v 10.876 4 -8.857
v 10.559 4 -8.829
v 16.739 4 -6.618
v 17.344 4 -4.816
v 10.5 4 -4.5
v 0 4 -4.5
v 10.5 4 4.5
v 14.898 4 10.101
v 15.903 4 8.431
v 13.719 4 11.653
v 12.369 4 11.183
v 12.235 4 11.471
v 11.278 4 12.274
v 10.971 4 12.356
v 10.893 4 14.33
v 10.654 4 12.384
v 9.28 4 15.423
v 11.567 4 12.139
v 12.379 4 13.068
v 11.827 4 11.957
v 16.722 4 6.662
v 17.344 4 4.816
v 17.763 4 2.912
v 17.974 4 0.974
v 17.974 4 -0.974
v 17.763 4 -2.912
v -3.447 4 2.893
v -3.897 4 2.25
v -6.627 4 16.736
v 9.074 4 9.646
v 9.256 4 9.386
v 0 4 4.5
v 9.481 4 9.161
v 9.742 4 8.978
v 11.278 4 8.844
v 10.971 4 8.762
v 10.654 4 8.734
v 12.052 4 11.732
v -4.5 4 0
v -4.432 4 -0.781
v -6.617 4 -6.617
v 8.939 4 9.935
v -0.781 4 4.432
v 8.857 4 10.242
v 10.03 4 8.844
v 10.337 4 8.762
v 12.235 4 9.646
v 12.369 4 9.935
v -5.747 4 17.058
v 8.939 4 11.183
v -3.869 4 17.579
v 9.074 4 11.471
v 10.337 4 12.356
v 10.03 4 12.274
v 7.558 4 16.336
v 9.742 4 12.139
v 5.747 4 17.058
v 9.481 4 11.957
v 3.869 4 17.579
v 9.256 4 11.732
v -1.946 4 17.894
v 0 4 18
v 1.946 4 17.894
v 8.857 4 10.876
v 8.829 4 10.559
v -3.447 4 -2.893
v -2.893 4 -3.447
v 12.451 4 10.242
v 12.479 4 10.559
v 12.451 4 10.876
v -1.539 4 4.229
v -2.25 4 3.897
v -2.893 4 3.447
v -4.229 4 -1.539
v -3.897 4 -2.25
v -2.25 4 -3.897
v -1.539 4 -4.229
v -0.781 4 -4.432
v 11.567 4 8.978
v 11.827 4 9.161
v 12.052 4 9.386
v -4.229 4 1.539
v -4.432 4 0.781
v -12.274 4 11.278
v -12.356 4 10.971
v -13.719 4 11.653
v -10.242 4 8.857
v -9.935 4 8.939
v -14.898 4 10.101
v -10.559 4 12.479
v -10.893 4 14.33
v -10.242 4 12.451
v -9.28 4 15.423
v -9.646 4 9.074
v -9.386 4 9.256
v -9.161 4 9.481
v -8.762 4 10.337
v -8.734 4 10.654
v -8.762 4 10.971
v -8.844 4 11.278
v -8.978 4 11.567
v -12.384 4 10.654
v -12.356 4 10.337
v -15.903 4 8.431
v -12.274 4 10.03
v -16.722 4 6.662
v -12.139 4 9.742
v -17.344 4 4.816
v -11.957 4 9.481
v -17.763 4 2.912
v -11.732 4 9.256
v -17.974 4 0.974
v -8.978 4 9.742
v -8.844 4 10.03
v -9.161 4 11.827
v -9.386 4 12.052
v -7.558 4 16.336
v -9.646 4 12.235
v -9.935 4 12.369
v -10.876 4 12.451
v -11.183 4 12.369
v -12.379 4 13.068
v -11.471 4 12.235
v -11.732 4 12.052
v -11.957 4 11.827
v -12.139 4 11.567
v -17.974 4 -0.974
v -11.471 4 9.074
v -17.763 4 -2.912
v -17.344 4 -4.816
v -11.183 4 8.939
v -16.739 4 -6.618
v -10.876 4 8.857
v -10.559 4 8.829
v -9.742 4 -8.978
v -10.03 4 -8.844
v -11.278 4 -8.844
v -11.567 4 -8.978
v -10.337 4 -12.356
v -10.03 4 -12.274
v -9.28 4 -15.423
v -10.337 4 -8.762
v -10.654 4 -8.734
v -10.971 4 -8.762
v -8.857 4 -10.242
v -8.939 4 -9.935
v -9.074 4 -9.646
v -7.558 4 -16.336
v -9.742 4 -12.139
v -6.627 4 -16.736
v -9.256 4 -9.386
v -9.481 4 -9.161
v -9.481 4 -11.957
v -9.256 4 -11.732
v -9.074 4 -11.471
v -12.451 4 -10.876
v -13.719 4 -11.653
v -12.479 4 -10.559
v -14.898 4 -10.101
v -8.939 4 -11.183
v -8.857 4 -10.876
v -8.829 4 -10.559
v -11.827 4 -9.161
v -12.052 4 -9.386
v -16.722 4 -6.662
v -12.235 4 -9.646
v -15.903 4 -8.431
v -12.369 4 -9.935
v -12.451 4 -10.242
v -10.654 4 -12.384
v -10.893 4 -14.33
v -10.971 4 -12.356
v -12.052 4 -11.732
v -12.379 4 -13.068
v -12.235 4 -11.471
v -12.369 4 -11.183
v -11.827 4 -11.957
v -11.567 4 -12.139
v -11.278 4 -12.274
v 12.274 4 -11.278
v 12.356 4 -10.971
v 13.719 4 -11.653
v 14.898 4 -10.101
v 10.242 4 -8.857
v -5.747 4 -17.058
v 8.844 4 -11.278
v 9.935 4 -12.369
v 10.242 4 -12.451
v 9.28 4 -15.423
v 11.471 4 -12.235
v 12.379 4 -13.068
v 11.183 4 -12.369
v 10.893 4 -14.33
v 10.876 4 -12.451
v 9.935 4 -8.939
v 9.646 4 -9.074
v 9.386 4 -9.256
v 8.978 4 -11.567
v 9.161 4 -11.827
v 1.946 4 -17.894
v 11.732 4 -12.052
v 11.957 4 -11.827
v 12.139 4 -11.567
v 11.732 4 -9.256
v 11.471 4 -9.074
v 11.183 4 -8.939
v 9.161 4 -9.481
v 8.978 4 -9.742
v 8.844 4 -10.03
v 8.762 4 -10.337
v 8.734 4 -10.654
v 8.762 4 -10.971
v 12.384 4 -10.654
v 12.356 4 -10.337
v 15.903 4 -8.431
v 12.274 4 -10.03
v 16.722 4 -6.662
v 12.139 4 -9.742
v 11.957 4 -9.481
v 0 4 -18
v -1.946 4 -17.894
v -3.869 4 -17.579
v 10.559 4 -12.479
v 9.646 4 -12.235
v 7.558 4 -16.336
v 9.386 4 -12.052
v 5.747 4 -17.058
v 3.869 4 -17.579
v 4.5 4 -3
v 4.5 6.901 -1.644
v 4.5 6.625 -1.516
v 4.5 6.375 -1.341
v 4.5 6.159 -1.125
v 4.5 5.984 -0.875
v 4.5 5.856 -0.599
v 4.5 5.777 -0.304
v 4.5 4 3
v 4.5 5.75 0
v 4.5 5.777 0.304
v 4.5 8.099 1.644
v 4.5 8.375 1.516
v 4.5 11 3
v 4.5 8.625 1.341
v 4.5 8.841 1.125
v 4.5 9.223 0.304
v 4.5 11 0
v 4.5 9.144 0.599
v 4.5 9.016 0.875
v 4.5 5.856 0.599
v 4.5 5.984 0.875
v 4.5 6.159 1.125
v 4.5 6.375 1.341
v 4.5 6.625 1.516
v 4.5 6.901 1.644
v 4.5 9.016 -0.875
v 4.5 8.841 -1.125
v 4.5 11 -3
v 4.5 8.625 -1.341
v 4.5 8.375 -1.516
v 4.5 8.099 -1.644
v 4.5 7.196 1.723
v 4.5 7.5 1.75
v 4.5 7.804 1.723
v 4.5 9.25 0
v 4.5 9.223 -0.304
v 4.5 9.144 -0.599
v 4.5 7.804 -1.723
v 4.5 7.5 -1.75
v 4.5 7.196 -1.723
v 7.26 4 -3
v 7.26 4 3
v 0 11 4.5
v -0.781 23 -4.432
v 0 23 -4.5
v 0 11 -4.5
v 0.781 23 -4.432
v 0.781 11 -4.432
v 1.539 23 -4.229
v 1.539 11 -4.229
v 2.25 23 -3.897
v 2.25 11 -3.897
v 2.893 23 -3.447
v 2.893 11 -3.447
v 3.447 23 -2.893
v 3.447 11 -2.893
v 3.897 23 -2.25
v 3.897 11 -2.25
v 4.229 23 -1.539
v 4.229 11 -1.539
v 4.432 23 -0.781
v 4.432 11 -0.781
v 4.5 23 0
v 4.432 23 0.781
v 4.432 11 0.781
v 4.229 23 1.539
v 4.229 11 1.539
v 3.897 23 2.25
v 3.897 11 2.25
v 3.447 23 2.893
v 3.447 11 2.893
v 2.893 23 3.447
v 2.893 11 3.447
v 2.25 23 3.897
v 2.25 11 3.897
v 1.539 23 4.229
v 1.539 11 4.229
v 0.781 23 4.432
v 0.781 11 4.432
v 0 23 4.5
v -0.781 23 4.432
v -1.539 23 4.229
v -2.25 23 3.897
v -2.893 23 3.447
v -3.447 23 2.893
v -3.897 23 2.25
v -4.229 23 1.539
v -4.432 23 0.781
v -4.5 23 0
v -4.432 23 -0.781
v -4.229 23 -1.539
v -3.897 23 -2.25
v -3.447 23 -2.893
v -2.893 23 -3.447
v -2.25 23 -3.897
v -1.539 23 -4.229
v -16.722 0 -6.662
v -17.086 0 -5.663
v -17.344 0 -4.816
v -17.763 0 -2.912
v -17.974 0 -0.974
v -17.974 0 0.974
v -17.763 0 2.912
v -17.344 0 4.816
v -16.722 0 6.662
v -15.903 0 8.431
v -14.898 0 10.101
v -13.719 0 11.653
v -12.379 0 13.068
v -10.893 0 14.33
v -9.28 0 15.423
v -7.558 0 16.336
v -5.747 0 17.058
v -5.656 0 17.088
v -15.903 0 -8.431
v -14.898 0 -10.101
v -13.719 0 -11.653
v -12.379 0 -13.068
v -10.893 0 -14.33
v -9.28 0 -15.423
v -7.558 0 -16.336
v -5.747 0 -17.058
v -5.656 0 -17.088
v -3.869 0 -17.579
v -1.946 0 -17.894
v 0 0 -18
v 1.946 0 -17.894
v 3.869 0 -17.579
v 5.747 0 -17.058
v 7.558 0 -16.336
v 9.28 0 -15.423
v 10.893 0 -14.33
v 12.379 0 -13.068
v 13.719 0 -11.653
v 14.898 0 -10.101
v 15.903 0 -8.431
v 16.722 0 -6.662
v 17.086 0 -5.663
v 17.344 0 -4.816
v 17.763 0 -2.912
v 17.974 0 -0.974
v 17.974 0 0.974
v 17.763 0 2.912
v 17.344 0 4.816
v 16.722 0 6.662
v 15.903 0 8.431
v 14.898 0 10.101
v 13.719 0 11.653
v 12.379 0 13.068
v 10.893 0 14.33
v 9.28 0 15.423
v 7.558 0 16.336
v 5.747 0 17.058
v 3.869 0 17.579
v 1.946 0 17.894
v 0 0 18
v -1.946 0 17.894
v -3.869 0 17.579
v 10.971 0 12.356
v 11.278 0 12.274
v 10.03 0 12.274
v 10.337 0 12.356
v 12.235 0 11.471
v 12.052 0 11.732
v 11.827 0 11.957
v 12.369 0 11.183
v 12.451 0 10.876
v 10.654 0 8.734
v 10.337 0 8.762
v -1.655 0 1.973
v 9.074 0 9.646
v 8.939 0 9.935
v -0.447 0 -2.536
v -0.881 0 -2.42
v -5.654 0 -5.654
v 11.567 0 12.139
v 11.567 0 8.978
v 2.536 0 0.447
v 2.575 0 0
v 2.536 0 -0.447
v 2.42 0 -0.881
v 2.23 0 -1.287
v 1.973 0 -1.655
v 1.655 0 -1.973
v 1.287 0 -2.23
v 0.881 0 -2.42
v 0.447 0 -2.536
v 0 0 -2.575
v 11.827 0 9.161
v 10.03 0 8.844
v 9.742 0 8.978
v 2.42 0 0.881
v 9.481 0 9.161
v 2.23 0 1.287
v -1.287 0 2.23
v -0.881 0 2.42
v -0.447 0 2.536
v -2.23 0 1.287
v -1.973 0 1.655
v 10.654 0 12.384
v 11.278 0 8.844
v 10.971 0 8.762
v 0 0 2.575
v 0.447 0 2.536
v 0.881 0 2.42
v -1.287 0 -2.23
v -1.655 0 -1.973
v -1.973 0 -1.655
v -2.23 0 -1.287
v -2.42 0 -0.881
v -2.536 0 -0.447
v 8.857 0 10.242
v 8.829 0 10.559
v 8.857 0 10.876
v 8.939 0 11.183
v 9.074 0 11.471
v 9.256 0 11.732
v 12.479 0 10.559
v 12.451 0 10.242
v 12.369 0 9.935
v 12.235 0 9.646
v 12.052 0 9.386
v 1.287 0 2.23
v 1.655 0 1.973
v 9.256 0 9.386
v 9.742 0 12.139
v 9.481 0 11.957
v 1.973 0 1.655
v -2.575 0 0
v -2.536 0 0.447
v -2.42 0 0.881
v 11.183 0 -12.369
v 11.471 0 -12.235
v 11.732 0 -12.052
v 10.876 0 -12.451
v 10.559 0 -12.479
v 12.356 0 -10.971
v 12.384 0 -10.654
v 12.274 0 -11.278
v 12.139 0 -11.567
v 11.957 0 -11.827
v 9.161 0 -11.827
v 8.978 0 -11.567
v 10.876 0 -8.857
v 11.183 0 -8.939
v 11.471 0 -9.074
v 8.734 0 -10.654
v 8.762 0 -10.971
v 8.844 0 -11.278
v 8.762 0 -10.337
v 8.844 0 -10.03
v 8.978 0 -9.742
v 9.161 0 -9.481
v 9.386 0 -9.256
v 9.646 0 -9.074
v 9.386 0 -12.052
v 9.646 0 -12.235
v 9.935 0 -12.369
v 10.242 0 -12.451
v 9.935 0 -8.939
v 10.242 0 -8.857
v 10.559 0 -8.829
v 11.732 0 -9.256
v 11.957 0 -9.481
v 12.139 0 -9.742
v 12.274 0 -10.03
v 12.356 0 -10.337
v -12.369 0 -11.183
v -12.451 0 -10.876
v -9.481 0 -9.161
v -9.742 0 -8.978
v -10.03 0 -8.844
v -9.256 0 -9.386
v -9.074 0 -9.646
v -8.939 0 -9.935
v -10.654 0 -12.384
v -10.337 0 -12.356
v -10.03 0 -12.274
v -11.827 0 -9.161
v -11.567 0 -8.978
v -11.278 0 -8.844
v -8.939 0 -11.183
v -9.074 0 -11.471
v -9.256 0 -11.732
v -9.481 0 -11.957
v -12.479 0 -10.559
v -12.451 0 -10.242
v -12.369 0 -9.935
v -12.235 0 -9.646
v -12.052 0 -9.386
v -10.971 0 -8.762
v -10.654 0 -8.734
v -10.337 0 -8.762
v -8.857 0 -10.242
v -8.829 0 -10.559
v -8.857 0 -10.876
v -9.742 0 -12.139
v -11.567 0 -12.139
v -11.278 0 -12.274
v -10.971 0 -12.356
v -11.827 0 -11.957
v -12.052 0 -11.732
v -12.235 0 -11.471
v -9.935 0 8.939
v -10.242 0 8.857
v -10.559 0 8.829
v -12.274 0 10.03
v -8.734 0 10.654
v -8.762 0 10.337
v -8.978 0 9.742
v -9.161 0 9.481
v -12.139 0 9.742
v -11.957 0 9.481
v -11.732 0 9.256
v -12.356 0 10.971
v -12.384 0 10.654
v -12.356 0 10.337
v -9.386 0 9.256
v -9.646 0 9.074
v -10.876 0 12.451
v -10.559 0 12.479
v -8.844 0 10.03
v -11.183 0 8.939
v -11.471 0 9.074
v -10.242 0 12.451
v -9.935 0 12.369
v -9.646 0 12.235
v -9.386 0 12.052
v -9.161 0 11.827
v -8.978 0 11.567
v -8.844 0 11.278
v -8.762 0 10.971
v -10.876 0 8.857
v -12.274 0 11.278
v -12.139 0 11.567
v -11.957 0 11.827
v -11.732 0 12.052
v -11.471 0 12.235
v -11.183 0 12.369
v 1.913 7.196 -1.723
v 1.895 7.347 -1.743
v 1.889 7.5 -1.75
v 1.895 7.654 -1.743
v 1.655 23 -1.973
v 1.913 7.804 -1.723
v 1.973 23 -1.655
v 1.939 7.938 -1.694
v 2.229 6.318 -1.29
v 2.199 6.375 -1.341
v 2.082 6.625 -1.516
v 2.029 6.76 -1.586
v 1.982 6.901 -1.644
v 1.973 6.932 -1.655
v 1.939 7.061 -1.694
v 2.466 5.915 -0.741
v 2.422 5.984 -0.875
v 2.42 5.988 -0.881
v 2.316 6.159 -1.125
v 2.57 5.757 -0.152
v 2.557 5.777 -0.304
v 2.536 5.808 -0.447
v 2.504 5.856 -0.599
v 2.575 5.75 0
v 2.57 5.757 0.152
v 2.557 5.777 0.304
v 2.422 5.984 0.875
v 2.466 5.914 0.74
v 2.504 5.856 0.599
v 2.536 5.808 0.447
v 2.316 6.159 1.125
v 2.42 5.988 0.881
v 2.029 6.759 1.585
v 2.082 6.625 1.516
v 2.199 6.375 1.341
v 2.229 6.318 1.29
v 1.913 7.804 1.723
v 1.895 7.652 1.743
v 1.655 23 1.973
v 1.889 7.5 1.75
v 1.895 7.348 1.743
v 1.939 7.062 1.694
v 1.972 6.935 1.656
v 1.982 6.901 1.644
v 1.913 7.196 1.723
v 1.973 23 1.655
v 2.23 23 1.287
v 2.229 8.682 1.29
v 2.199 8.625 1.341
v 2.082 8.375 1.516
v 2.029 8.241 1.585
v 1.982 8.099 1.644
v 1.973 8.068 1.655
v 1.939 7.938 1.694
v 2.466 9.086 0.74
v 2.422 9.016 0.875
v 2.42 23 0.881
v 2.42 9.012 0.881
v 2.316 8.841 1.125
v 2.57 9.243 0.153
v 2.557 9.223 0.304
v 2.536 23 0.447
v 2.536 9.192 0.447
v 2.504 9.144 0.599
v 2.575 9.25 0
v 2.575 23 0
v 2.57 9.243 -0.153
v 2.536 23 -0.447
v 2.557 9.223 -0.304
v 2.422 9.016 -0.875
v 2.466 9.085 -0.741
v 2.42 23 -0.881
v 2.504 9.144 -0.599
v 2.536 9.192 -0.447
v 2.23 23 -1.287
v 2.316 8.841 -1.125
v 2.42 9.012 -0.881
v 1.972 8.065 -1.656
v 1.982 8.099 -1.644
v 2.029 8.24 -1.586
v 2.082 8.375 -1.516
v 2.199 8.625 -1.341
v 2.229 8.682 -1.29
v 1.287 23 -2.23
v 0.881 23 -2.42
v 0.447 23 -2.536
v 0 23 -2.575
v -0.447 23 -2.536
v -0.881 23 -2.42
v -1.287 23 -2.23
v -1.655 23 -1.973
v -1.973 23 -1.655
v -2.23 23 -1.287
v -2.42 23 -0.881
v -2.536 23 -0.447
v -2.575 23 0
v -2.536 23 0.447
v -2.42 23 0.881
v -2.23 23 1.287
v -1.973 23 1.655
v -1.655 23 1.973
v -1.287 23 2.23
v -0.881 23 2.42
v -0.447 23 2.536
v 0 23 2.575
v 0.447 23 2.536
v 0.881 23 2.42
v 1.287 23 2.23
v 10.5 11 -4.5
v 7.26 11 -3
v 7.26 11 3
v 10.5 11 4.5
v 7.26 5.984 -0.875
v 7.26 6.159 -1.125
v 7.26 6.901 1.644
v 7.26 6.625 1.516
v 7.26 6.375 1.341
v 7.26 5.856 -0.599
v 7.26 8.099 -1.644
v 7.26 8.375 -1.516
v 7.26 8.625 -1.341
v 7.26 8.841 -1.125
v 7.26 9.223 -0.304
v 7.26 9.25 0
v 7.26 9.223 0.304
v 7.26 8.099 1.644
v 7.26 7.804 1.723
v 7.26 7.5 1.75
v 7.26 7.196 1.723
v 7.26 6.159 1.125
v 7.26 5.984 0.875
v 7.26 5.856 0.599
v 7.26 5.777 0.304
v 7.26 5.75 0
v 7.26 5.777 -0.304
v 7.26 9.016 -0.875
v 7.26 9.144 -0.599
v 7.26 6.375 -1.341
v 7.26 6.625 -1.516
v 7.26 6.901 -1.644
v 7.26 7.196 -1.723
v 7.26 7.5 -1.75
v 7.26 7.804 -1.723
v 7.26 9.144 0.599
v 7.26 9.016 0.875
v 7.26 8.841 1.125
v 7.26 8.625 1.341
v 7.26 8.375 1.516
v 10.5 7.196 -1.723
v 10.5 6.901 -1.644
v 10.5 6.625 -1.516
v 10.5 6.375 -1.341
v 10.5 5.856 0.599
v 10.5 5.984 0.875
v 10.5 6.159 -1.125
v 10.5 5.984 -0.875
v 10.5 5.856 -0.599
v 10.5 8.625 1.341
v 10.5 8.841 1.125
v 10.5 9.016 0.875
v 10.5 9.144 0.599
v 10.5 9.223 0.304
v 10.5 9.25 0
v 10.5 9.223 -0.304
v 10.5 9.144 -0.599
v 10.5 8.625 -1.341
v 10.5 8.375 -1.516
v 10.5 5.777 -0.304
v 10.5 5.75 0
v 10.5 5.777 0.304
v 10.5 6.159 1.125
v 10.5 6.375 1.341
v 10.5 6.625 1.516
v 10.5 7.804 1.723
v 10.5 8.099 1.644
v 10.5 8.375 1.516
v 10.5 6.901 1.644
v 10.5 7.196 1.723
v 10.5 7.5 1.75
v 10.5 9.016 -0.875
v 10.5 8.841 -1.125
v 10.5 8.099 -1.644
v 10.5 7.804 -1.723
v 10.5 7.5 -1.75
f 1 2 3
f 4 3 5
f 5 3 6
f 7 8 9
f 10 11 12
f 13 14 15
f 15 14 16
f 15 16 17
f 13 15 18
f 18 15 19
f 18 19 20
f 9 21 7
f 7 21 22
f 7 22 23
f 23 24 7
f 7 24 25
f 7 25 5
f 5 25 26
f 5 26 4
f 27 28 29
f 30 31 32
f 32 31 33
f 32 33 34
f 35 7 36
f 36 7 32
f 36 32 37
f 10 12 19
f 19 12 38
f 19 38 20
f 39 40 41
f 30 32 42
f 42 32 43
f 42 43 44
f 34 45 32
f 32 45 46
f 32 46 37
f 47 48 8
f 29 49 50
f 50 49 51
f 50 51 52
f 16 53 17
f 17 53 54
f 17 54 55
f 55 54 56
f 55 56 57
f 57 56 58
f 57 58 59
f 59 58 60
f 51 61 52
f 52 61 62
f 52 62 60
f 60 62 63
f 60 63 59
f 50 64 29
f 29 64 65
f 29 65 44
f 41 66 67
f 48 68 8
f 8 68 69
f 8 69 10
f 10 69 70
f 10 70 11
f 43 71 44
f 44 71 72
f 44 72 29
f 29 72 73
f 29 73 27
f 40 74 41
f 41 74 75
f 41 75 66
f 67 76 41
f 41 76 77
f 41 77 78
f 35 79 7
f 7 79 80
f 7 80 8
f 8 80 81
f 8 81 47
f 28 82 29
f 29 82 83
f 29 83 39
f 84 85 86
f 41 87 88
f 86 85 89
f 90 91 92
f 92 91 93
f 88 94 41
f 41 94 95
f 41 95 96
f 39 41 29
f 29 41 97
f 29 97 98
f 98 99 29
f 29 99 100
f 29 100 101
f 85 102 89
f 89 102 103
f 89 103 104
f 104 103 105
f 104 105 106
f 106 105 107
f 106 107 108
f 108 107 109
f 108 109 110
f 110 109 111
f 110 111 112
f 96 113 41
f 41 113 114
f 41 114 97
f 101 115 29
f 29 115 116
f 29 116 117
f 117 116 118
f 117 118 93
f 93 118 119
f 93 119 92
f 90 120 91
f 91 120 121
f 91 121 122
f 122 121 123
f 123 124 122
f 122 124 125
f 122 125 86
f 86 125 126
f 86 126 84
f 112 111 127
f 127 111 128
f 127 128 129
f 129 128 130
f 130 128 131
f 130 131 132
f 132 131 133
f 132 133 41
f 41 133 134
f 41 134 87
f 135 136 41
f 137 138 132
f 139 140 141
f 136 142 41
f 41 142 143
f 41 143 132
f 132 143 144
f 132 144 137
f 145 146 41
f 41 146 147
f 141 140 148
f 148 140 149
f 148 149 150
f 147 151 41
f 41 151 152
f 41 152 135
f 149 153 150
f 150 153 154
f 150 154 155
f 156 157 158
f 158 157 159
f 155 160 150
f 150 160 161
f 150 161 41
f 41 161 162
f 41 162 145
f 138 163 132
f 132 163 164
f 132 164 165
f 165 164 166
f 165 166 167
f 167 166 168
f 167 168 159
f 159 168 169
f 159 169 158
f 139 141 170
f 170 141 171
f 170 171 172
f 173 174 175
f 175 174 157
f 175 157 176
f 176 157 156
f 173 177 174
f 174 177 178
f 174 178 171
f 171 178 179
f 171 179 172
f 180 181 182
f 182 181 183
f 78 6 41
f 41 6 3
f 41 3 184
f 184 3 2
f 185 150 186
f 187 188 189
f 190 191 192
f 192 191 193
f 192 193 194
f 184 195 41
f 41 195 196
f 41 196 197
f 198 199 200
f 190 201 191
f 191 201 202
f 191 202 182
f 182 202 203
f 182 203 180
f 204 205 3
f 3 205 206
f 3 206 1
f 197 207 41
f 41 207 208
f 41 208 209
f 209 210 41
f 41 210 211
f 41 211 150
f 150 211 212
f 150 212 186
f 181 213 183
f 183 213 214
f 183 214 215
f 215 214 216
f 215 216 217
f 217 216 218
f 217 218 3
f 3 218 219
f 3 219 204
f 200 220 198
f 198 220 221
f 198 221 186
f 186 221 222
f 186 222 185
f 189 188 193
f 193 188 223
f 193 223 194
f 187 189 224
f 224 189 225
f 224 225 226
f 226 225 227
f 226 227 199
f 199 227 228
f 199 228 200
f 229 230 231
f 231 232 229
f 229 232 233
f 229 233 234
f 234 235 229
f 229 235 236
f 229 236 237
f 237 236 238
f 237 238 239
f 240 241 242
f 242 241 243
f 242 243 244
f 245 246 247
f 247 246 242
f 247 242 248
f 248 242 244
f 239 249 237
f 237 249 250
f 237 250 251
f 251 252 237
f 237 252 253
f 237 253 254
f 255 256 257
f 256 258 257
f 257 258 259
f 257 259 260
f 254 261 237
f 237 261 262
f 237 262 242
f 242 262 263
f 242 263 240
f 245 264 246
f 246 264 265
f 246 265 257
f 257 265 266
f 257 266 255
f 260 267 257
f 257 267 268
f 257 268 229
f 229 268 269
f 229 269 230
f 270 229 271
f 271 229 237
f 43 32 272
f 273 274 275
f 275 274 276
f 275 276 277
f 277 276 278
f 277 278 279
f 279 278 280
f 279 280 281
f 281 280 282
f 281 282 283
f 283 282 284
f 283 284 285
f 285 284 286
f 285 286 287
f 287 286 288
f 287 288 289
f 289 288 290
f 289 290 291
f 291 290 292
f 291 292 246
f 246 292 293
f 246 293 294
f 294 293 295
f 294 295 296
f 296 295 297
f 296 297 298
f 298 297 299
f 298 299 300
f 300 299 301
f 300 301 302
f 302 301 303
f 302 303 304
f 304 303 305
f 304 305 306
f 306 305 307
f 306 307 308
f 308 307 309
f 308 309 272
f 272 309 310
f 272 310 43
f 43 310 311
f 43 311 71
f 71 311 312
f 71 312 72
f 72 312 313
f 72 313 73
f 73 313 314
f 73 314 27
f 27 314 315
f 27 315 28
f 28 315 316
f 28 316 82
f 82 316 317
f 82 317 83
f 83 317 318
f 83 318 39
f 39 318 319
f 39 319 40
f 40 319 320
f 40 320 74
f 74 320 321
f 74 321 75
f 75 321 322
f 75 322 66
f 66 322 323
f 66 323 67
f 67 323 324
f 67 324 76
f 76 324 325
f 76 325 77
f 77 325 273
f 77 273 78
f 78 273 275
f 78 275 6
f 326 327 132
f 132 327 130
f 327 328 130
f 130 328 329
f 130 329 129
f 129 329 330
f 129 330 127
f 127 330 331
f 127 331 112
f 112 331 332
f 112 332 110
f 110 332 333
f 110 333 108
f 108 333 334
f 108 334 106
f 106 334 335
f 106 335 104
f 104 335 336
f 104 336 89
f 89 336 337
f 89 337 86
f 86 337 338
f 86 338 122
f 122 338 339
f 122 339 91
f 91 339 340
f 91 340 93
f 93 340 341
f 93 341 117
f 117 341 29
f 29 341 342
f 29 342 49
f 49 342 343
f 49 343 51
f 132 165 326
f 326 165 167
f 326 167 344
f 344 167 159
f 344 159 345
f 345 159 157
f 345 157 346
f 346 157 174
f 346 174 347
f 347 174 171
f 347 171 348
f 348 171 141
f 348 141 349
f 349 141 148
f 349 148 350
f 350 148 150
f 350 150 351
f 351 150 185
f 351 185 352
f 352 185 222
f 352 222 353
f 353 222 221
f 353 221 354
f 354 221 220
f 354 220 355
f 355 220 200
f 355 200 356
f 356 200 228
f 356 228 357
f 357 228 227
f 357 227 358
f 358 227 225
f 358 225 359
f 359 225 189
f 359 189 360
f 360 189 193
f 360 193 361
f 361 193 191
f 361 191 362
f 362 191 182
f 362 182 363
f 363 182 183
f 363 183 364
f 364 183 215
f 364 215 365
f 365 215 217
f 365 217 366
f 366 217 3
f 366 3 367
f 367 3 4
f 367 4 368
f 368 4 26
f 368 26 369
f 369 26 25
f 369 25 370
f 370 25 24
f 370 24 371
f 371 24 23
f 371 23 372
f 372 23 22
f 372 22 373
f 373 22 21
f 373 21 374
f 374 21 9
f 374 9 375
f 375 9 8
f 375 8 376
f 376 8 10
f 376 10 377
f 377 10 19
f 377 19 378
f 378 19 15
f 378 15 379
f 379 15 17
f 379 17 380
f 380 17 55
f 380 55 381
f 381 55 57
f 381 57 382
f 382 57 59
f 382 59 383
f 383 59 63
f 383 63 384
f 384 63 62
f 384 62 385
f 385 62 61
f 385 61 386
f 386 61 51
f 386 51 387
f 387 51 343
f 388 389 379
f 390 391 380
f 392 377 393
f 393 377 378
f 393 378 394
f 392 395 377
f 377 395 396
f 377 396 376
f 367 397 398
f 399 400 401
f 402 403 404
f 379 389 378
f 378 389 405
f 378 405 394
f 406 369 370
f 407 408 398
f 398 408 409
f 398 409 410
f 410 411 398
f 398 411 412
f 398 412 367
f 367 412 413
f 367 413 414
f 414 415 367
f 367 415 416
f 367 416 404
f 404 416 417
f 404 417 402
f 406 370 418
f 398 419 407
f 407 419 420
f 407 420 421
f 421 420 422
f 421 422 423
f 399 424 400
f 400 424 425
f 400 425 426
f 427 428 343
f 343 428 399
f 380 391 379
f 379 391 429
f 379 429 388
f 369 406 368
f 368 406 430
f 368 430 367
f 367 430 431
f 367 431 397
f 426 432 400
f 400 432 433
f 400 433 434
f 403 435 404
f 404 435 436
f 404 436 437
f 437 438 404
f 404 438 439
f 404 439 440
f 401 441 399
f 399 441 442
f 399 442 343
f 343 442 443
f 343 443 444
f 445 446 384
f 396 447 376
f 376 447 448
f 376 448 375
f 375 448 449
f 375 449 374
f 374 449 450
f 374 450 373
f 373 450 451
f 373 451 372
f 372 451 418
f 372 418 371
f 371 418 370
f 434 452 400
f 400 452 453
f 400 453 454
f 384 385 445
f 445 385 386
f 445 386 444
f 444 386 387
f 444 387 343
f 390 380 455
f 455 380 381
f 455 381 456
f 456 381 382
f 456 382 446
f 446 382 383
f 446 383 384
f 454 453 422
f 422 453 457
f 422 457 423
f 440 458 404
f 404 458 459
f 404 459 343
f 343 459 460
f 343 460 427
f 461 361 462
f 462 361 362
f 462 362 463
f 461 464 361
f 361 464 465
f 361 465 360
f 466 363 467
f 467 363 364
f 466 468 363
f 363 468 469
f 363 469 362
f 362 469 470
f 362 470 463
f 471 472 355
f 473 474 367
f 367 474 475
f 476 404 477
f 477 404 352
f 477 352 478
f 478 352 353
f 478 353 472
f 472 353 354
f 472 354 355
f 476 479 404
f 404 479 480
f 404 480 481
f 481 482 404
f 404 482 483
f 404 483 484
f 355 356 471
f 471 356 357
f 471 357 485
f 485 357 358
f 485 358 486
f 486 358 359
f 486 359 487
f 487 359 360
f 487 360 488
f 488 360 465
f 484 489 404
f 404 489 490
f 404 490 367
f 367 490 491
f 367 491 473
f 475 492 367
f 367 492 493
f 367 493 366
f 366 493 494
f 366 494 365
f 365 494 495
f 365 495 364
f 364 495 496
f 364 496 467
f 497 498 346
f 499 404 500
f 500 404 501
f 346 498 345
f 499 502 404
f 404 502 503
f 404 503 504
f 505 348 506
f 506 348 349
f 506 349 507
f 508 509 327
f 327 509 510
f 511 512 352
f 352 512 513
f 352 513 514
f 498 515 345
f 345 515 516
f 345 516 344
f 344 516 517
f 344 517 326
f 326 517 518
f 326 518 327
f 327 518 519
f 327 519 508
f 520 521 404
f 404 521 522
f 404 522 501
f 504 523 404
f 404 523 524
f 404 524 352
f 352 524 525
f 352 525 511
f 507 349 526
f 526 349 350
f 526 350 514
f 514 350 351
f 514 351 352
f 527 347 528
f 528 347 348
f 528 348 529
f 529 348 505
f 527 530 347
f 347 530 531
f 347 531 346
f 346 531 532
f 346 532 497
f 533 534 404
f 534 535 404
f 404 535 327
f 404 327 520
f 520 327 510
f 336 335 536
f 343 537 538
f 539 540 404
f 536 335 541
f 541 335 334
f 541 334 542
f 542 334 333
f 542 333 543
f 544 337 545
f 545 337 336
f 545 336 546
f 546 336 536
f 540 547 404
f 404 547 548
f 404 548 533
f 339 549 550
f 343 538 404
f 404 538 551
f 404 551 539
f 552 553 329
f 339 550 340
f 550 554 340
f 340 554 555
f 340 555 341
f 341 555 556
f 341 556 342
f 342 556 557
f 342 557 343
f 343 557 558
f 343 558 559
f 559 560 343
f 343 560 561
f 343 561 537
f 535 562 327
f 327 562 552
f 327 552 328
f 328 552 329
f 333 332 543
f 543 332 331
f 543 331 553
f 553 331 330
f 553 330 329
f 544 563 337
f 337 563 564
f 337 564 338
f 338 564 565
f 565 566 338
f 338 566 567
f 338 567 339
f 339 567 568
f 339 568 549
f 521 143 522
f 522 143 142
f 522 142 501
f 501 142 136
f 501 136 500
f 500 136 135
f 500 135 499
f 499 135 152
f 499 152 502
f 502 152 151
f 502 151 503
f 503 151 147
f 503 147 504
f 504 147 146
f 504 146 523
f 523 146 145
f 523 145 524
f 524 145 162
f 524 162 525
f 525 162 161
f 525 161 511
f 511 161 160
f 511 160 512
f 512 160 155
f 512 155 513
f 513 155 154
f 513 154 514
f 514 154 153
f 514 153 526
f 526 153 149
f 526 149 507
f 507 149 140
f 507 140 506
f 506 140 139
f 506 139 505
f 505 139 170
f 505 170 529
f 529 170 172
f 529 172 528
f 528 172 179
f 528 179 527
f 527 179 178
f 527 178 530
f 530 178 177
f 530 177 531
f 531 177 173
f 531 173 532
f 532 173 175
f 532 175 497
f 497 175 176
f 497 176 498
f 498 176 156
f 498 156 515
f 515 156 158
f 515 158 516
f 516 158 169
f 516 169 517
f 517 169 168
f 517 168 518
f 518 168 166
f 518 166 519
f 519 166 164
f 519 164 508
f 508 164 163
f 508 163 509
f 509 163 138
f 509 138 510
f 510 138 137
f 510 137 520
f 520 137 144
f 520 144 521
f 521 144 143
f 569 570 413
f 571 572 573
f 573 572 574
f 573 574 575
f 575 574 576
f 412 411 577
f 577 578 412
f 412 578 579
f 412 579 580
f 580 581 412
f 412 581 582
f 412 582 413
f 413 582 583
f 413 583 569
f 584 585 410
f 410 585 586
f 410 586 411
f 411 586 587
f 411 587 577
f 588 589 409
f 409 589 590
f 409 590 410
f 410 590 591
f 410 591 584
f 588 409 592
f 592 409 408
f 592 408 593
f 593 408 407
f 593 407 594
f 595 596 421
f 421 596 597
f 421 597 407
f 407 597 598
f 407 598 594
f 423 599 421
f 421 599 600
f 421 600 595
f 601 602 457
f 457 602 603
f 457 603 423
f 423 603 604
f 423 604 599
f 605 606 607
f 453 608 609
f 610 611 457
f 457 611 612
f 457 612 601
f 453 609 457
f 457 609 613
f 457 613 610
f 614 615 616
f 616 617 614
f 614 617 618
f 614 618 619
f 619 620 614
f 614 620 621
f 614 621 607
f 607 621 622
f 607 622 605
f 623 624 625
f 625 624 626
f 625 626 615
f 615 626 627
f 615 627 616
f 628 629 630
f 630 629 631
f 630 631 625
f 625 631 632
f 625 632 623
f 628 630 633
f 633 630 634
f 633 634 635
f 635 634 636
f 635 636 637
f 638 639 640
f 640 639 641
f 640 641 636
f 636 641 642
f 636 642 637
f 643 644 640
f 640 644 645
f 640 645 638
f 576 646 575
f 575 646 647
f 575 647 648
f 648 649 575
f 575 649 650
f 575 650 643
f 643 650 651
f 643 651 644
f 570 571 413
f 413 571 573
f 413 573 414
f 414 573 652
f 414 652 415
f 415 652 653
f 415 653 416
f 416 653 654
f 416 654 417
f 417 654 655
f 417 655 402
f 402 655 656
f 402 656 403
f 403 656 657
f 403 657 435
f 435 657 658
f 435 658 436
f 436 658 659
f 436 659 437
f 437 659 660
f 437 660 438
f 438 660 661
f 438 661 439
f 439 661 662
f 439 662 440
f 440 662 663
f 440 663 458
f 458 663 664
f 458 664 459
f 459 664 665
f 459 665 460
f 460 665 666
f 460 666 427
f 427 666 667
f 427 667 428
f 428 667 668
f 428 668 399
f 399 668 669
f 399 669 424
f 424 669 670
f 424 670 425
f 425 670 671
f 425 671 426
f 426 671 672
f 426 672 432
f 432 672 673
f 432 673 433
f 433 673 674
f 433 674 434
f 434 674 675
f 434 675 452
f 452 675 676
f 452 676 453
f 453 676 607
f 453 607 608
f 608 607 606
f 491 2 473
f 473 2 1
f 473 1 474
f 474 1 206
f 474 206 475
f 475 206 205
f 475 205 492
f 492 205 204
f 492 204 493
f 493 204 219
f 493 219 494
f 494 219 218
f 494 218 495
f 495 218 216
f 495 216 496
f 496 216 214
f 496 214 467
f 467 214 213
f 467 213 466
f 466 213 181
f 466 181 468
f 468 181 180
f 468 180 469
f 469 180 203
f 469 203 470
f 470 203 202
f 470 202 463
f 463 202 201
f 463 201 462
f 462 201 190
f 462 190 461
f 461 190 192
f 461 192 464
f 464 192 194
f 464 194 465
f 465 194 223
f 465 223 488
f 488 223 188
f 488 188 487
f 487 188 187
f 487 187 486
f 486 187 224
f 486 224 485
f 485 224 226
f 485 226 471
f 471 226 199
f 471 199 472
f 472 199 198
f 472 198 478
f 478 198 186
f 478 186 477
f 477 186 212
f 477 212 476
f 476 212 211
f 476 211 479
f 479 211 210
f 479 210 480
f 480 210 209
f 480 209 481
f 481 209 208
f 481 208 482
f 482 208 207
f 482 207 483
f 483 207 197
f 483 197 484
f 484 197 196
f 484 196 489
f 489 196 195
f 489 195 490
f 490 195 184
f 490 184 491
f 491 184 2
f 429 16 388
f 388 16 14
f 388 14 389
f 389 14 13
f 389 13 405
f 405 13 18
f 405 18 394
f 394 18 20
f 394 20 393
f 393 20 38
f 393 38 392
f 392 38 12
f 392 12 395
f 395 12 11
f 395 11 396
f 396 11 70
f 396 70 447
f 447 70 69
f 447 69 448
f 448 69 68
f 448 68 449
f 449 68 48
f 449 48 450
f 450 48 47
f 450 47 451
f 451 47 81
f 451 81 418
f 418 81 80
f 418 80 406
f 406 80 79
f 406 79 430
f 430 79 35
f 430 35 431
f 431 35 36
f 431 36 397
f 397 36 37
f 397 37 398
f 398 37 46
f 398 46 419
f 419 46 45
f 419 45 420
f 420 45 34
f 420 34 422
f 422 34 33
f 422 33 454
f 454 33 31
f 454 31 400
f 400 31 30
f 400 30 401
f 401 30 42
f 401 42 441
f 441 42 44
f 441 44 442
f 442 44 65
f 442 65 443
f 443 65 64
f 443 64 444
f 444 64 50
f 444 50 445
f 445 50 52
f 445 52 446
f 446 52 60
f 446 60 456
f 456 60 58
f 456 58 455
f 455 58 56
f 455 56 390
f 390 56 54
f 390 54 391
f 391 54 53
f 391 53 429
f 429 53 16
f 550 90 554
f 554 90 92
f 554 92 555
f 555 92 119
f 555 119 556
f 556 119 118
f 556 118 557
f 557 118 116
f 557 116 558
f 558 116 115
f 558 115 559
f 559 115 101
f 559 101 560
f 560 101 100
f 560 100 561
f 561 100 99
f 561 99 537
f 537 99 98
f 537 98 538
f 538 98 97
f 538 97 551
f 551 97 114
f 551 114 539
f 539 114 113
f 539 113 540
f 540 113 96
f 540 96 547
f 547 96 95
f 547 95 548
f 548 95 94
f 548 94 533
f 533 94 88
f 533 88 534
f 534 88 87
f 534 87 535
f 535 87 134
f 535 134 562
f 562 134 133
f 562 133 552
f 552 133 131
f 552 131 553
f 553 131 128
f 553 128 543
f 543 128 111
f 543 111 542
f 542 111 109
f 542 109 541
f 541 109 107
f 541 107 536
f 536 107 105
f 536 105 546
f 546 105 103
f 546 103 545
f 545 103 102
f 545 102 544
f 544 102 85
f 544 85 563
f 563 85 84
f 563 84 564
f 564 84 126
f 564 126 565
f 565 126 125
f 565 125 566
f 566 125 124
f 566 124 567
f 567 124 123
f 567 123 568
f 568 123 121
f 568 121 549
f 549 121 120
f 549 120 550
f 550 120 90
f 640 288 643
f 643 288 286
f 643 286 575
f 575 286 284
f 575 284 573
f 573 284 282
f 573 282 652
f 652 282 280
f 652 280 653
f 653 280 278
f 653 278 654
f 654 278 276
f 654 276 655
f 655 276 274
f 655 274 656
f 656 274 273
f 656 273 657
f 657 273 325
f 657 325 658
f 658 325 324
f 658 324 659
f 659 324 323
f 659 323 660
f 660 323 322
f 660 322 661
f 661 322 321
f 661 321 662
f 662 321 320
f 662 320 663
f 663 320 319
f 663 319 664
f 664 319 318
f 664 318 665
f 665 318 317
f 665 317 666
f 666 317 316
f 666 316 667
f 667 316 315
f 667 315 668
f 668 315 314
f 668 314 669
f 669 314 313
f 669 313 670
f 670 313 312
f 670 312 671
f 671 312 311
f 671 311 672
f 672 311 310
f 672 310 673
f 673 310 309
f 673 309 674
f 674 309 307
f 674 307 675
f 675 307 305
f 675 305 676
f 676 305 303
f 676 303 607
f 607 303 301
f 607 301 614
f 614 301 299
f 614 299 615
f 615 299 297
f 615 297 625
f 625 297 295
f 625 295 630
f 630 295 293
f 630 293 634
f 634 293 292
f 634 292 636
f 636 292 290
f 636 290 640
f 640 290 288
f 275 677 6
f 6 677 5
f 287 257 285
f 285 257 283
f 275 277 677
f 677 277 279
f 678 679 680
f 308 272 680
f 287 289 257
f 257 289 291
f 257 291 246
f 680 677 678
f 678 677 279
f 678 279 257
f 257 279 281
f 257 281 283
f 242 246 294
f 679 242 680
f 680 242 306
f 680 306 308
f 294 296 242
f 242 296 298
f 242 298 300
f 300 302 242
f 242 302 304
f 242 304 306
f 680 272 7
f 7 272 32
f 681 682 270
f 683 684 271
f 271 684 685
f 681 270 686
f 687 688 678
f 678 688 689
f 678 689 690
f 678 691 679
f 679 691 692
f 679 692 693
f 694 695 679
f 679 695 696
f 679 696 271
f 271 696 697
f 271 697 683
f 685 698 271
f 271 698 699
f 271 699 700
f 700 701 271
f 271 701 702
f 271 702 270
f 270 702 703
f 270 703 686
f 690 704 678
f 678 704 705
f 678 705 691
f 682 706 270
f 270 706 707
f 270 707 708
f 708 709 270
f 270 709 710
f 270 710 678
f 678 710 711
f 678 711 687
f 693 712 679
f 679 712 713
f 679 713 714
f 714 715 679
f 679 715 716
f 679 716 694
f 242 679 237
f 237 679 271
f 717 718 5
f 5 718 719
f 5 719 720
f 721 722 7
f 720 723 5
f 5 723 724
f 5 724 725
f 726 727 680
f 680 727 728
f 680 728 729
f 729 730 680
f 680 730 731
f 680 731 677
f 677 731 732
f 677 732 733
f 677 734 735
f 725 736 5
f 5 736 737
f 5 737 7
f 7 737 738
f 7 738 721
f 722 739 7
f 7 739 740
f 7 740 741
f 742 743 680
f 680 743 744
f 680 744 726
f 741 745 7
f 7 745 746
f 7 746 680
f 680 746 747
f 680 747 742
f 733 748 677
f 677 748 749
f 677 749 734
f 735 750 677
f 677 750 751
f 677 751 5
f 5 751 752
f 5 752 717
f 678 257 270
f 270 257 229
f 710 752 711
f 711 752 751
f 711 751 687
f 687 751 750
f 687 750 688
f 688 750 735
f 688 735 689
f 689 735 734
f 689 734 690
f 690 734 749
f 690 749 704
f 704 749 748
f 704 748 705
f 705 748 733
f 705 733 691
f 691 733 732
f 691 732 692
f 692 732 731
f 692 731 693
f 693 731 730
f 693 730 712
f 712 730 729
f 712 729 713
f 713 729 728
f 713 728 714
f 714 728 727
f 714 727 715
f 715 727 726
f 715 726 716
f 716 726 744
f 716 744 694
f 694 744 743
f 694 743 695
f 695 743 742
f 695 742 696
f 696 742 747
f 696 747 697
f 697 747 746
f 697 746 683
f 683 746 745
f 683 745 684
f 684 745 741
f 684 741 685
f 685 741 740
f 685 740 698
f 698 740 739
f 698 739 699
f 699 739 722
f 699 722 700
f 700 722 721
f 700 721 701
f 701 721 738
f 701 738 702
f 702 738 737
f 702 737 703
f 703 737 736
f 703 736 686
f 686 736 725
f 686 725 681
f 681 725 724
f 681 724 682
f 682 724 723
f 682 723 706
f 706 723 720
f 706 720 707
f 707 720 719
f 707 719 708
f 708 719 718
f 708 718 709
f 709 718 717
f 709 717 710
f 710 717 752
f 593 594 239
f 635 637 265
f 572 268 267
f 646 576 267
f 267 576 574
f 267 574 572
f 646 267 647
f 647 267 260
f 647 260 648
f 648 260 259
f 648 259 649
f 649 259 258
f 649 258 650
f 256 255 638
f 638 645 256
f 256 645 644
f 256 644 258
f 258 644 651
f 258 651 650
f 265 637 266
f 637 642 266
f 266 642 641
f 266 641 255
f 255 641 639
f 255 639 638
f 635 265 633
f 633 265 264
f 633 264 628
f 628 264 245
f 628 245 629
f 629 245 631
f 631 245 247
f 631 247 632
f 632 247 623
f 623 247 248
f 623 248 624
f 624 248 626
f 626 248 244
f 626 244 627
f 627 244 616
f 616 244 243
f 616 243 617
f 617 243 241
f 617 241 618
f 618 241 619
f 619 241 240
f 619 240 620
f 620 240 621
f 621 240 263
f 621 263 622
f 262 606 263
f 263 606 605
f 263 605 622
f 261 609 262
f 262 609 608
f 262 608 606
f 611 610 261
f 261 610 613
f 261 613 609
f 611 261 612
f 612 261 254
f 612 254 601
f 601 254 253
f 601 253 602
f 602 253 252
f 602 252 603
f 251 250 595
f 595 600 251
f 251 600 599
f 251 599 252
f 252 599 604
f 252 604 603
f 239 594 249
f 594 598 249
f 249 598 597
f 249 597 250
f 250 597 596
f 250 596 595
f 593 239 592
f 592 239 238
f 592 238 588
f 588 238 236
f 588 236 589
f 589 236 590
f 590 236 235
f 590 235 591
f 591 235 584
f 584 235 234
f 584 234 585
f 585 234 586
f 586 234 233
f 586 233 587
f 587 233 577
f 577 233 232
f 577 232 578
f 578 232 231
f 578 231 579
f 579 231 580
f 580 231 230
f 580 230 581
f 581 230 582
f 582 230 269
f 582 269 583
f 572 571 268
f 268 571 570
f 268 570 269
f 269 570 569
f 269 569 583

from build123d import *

# Parameters (mm, degrees)
SKETCH1_R           = 18
BOSS_EXTRUDE1_DEPTH = 4
SKETCH2_R           = 1.825
SKETCH2_R_2         = 2.575
CUT_EXTRUDE1_DEPTH  = 26.768197453
BOSS_EXTRUDE2_START = 19
SKETCH3_R           = 2.575
BOSS_EXTRUDE2_DEPTH = 19
BOSS_EXTRUDE4_START = 7
BOSS_EXTRUDE4_DEPTH = 7
BOSS_EXTRUDE5_DEPTH = 7
SKETCH6_R           = 1.75
CUT_EXTRUDE2_DEPTH  = 10


with BuildPart() as part:
    # Sketch1 → Boss-Extrude1 (new body)
    with BuildSketch(Plane(origin=(0, 0, 0), x_dir=(1, 0, 0), z_dir=(0, 1, 0))):
        Circle(SKETCH1_R)
    extrude(amount=BOSS_EXTRUDE1_DEPTH)

    # Sketch2 → Cut-Extrude1 (cut, through all)
    with BuildSketch(Plane(origin=(0, 4, 0), x_dir=(1, 0, 0), z_dir=(0, 1, 0))):
        with Locations((-10.654011001, 10.558979572)):
            Circle(SKETCH2_R)
        with Locations((10.558979572, 10.654011001)):
            Circle(SKETCH2_R)
        with Locations((10.654011001, -10.558979572)):
            Circle(SKETCH2_R)
        Circle(SKETCH2_R_2)
        with Locations((-10.558979572, -10.654011001)):
            Circle(SKETCH2_R)
    extrude(amount=-CUT_EXTRUDE1_DEPTH, mode=Mode.SUBTRACT)

    # Sketch3 → Boss-Extrude2 (add)
    with BuildSketch(Plane(origin=(0, 4, 0), x_dir=(1, 0, 0), z_dir=(0, 1, 0)).offset(BOSS_EXTRUDE2_START)):
        with BuildLine():
            ThreePointArc((0, -4.5), (3.181980515, -3.181980515), (4.5, 0))
            ThreePointArc((4.5, 0), (3.181980515, 3.181980515), (0, 4.5))
            ThreePointArc((0, 4.5), (-4.5, 0), (0, -4.5))
        make_face()
        Circle(SKETCH3_R, mode=Mode.SUBTRACT)
    extrude(amount=-BOSS_EXTRUDE2_DEPTH)

    # Sketch3<4> → Boss-Extrude4 (add)
    with BuildSketch(Plane(origin=(0, 4, 0), x_dir=(1, 0, 0), z_dir=(0, 1, 0)).offset(BOSS_EXTRUDE4_START)):
        with BuildLine():
            ThreePointArc((0, 4.5), (3.181980515, 3.181980515), (4.5, 0))
            Line((4.5, 0), (4.5, 3))
            Line((4.5, 3), (4.5, 4.5))
            Line((4.5, 4.5), (0, 4.5))
        make_face()
        with BuildLine():
            Line((4.5, -3), (4.5, 0))
            ThreePointArc((4.5, 0), (3.181980515, -3.181980515), (0, -4.5))
            Line((0, -4.5), (4.5, -4.5))
            Line((4.5, -4.5), (4.5, -3))
        make_face()
    extrude(amount=-BOSS_EXTRUDE4_DEPTH)

    # Sketch3<5> → Boss-Extrude5 (add)
    with BuildSketch(Plane(origin=(0, 4, 0), x_dir=(1, 0, 0), z_dir=(0, 1, 0))):
        Polygon((4.5, 4.5), (4.5, 3), (7.26, 3), (7.26, -3), (4.5, -3), (4.5, -4.5), (10.5, -4.5), (10.5, 4.5), align=None)
    extrude(amount=BOSS_EXTRUDE5_DEPTH)

    # Sketch6 → Cut-Extrude2 (cut)
    with BuildSketch(Plane(origin=(10.5, 0, 0), x_dir=(0, 0, -1), z_dir=(1, 0, 0))):
        with Locations((0, 7.5)):
            Circle(SKETCH6_R)
    extrude(amount=-CUT_EXTRUDE2_DEPTH, mode=Mode.SUBTRACT)


solid = part.part
